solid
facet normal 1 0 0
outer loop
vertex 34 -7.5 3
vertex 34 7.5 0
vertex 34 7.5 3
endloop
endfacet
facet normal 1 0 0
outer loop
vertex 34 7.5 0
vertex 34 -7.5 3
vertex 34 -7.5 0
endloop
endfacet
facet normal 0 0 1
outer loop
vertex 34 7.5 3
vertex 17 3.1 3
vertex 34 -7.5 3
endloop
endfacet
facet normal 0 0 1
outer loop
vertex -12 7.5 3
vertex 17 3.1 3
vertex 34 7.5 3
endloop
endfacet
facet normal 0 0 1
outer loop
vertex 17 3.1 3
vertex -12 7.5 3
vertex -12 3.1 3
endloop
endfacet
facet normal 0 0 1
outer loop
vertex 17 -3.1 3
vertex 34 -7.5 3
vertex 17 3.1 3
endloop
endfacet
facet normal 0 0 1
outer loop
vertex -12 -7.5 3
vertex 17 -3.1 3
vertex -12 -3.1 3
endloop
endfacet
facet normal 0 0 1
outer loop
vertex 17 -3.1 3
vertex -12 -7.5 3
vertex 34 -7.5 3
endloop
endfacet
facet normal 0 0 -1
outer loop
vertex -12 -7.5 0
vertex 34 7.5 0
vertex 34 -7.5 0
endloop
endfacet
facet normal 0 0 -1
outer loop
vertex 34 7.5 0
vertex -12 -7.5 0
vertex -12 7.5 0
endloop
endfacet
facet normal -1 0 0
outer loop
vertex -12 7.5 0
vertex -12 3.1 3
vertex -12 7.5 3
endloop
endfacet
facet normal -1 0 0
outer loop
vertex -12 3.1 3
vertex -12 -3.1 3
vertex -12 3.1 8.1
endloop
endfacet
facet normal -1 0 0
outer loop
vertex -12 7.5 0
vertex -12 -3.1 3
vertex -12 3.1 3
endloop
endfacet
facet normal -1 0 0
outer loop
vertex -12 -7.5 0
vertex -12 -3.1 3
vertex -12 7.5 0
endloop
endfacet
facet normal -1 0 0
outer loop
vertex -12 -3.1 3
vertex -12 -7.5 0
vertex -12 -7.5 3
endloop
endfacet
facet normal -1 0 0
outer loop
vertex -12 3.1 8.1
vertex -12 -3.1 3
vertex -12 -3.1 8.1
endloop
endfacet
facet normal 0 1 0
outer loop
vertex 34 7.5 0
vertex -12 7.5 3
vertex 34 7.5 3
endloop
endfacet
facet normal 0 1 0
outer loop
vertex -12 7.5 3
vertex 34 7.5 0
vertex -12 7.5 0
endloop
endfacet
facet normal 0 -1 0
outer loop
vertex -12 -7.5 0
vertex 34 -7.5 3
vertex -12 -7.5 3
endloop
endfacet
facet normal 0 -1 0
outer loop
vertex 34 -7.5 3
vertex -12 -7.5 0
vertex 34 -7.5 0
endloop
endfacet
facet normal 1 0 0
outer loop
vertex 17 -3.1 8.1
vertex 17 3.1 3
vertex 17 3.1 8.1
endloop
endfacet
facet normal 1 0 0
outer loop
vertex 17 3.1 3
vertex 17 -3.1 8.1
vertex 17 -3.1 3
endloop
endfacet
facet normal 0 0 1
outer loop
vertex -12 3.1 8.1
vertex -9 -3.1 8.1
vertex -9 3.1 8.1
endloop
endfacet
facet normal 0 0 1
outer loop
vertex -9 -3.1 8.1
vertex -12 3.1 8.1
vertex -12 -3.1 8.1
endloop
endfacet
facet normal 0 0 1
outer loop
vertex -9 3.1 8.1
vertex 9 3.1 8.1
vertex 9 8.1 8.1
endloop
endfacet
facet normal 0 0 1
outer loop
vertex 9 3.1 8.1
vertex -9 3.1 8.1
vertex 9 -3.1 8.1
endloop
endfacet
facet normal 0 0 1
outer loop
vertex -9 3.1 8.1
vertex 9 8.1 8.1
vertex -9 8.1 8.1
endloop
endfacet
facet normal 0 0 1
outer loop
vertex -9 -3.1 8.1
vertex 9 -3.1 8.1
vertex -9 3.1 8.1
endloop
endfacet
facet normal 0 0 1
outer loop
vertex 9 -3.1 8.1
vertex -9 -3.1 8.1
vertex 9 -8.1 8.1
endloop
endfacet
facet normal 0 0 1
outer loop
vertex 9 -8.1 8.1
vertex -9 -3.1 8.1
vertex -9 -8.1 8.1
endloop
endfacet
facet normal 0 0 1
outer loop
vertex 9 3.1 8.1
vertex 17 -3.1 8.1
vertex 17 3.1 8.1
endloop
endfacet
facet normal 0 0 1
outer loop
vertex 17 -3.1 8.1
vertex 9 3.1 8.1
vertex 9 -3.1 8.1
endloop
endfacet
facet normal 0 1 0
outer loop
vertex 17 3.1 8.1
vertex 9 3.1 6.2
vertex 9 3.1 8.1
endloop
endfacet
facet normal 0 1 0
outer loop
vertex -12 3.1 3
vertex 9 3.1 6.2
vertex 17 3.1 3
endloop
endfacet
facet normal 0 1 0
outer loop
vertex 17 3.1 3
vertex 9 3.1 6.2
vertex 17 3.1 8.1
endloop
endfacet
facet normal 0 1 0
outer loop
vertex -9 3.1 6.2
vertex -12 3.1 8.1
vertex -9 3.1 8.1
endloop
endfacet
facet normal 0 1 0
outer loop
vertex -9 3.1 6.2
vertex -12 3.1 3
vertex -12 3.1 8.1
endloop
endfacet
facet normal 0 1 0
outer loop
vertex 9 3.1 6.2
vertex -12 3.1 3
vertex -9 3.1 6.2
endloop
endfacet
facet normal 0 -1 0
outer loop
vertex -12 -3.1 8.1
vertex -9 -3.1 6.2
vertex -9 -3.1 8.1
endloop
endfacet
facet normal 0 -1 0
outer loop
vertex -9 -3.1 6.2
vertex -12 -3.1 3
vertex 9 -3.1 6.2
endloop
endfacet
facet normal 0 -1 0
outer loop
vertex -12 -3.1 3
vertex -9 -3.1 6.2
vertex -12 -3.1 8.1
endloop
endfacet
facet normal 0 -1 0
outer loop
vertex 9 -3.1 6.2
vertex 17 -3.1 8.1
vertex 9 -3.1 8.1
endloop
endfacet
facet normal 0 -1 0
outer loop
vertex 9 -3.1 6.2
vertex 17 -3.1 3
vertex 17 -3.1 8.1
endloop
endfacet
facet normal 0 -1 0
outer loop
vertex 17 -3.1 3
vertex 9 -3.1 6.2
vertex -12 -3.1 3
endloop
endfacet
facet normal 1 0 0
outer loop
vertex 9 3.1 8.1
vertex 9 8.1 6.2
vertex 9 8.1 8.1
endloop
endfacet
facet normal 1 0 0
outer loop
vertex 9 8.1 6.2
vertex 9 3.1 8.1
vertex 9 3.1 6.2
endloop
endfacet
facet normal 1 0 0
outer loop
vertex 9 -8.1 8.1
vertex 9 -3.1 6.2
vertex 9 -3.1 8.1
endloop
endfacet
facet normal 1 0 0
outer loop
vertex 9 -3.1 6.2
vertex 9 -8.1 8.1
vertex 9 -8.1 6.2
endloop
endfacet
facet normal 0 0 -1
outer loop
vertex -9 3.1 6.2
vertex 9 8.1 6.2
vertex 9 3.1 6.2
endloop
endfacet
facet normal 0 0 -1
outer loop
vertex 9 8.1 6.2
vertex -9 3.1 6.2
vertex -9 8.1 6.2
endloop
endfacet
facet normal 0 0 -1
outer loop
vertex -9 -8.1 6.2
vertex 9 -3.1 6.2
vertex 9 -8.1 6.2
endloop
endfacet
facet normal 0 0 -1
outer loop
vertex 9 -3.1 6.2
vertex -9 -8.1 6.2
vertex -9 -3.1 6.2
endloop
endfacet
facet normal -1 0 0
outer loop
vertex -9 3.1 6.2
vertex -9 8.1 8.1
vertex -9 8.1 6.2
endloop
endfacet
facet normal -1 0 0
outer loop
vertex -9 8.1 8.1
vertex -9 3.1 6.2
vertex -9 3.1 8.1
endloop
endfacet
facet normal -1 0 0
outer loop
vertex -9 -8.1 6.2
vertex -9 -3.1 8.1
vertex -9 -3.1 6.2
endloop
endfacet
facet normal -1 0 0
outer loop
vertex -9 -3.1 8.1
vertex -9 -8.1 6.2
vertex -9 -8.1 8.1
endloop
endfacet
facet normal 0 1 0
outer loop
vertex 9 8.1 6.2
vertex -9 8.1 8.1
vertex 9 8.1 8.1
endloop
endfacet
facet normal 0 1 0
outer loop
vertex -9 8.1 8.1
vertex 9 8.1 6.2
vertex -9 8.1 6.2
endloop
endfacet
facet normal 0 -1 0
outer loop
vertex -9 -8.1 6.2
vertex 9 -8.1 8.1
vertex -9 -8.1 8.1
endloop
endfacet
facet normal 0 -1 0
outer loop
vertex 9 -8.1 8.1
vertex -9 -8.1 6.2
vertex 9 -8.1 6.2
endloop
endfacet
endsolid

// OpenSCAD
//
// Spacer for a KRYDEX magazine pouch when used with Glock 42
//

module spacer() {
    union () {
        // Spacer that stabilizes the magazine
        translate([-12.0, -15.0/2, 0]) cube([46.0, 15.0, 3.0]);

        // Connector
        translate([-12.0, -6.2/2, 0]) cube([29.0, 6.2, 8.1]);

        // The tab that slides into the slots
        // Measured thickness is 2.4, but we print 1.9, or else it's too thick.
        translate([-18.0/2, -16.2/2, 8.1-1.9]) cube([18.0, 16.2, 1.9]);
    }
}

spacer();
